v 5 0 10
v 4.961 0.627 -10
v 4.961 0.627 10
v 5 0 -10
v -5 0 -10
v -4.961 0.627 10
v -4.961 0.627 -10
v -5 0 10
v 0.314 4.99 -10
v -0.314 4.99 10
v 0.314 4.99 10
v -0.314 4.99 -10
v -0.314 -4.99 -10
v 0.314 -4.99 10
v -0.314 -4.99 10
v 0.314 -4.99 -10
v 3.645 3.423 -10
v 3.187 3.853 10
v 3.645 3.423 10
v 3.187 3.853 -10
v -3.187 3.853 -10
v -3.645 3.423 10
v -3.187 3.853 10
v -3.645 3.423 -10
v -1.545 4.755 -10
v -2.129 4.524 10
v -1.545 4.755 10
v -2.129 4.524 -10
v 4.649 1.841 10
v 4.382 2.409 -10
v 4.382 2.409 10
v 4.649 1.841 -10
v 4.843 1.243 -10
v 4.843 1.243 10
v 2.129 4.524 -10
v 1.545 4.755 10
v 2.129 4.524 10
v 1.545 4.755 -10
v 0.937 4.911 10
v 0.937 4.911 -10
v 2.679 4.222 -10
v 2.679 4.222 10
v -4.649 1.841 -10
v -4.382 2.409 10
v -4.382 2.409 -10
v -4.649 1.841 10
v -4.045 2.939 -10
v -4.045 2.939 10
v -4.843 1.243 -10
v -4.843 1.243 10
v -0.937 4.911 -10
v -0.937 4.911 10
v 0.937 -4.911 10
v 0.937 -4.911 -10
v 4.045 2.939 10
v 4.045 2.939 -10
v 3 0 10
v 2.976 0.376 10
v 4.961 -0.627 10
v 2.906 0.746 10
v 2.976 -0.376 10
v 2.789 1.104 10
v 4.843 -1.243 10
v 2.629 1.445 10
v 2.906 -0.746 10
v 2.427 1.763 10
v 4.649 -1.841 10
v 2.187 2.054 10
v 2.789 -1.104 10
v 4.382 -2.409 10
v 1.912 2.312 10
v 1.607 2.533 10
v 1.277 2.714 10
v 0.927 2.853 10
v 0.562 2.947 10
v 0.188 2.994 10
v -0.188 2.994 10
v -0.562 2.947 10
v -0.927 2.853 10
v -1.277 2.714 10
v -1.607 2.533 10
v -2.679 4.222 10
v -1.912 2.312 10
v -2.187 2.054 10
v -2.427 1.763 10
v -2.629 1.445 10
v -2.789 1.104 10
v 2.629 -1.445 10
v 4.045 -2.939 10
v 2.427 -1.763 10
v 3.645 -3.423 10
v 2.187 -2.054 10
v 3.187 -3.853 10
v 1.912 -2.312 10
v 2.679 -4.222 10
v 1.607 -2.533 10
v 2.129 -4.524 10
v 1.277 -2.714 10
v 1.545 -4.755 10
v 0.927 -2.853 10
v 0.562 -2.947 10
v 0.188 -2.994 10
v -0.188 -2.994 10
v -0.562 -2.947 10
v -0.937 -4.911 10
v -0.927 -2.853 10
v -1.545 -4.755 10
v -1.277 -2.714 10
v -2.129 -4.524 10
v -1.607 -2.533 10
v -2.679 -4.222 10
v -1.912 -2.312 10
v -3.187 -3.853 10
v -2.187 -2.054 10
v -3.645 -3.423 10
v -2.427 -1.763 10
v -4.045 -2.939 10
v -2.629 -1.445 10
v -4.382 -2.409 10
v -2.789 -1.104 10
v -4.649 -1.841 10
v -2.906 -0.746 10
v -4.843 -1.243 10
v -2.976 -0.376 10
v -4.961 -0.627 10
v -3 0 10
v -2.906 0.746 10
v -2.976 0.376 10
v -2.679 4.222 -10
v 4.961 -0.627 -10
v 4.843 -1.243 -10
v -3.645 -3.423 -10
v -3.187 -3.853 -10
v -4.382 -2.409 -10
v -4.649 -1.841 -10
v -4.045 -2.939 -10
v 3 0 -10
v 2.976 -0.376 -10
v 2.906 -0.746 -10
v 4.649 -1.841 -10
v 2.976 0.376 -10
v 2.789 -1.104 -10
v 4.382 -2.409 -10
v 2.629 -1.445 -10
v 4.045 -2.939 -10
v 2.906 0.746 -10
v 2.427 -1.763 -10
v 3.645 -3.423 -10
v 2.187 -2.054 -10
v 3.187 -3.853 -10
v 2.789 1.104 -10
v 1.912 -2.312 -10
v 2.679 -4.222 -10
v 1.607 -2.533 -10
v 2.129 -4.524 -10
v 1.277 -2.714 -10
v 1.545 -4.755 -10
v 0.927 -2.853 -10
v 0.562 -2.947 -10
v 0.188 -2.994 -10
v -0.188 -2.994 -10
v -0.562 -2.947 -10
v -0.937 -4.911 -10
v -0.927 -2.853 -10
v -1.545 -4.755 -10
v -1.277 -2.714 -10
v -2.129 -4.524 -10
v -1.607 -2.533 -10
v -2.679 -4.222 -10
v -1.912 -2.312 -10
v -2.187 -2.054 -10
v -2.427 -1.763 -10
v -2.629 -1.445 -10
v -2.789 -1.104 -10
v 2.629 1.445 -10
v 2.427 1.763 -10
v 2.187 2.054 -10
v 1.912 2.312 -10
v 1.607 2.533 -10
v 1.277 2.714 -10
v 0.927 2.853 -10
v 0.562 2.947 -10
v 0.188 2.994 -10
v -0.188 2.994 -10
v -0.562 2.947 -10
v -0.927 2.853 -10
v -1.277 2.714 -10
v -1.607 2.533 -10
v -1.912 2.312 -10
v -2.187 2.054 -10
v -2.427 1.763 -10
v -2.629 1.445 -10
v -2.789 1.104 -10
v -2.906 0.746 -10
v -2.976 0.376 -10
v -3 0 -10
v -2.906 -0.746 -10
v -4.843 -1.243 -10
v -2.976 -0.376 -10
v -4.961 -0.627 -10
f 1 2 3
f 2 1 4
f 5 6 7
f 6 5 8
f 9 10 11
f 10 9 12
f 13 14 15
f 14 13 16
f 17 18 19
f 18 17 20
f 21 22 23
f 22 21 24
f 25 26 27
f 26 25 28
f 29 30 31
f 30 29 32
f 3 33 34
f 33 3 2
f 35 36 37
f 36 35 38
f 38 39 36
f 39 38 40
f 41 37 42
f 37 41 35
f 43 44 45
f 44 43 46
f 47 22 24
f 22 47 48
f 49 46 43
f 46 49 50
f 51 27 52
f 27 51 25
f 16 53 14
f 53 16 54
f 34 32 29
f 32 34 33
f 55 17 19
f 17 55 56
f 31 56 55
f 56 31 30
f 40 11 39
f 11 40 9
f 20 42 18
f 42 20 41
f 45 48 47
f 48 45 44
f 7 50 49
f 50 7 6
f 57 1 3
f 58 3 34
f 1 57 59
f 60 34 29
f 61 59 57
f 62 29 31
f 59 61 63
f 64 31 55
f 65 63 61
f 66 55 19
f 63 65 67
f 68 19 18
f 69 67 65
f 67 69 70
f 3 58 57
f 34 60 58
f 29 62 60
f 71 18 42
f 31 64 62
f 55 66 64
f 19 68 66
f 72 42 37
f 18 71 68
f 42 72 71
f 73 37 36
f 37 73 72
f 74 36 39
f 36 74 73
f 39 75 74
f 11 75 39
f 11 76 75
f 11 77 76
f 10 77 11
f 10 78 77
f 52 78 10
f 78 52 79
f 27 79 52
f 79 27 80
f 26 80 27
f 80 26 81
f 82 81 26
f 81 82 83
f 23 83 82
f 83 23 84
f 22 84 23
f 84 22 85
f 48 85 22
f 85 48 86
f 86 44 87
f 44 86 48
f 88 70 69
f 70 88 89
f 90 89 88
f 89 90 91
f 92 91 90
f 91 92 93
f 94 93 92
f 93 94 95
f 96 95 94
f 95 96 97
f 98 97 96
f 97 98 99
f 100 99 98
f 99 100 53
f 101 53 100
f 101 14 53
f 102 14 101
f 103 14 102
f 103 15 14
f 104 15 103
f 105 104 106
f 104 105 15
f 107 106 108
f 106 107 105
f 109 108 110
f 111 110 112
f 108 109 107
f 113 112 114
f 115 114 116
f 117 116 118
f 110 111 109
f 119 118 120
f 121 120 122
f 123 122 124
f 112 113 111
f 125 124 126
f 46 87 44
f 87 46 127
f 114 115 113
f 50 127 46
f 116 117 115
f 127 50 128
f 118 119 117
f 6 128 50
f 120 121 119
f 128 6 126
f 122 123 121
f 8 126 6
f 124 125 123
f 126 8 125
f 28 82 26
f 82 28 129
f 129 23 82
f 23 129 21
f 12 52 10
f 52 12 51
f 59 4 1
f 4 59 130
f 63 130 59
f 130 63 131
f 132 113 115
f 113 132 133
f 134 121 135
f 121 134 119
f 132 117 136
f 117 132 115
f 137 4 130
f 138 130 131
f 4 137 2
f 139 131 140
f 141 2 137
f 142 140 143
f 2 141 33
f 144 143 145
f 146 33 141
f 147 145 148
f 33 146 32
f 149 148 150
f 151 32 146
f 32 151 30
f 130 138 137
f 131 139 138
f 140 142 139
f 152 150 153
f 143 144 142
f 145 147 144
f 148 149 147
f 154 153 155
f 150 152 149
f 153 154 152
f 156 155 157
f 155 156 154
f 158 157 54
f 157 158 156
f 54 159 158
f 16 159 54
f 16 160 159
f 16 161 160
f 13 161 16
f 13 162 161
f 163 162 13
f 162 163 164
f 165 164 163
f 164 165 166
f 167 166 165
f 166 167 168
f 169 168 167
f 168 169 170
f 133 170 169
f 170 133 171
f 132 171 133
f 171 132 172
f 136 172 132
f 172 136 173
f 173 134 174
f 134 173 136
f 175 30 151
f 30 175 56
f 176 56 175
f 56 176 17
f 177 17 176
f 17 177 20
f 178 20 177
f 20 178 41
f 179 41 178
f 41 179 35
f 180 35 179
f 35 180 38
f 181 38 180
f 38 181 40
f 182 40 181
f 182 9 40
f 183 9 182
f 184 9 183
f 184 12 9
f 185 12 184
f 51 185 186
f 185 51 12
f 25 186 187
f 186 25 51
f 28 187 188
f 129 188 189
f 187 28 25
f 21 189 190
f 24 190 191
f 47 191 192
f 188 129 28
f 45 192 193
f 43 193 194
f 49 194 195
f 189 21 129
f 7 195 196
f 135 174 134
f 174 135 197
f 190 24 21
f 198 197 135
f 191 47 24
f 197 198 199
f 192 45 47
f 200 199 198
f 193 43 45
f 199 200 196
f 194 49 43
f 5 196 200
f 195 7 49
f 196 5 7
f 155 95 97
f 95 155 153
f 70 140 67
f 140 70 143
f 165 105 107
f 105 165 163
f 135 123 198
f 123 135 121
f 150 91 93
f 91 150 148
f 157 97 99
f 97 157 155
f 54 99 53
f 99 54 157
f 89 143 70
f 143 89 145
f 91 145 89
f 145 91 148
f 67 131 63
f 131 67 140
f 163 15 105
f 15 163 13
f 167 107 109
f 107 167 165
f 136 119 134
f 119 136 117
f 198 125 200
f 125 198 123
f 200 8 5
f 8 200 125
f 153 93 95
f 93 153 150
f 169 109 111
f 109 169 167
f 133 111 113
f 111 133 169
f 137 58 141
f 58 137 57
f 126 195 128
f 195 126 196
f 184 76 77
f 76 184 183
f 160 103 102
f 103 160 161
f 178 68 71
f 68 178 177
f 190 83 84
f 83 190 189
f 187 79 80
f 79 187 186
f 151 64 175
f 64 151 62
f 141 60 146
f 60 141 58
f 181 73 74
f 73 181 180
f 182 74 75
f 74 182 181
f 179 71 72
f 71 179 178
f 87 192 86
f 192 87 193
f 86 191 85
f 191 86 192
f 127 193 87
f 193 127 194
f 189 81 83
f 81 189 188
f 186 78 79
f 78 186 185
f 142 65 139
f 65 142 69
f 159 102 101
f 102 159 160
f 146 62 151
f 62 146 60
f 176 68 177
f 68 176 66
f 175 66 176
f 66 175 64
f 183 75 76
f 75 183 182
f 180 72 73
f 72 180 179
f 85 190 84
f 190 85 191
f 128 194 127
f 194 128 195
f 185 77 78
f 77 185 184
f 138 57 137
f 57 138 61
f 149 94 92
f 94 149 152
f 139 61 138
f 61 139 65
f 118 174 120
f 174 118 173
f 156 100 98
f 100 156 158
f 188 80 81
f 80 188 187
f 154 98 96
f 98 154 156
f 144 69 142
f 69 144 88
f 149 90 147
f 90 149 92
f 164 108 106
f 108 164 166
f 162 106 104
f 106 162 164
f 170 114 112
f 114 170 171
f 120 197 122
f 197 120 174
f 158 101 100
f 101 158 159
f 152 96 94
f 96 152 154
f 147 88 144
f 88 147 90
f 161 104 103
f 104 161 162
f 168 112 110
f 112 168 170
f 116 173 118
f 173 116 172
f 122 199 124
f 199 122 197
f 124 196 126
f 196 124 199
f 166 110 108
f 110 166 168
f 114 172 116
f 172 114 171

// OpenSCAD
$fn = 50;


difference() {
	union() {
		translate(v = [0, 0, -10.0000000000]) {
			cylinder(h = 20, r = 5.0000000000);
		}
	}
	union() {
		translate(v = [0, 0, -100.0000000000]) {
			cylinder(h = 200, r = 3);
		}
	}
}
